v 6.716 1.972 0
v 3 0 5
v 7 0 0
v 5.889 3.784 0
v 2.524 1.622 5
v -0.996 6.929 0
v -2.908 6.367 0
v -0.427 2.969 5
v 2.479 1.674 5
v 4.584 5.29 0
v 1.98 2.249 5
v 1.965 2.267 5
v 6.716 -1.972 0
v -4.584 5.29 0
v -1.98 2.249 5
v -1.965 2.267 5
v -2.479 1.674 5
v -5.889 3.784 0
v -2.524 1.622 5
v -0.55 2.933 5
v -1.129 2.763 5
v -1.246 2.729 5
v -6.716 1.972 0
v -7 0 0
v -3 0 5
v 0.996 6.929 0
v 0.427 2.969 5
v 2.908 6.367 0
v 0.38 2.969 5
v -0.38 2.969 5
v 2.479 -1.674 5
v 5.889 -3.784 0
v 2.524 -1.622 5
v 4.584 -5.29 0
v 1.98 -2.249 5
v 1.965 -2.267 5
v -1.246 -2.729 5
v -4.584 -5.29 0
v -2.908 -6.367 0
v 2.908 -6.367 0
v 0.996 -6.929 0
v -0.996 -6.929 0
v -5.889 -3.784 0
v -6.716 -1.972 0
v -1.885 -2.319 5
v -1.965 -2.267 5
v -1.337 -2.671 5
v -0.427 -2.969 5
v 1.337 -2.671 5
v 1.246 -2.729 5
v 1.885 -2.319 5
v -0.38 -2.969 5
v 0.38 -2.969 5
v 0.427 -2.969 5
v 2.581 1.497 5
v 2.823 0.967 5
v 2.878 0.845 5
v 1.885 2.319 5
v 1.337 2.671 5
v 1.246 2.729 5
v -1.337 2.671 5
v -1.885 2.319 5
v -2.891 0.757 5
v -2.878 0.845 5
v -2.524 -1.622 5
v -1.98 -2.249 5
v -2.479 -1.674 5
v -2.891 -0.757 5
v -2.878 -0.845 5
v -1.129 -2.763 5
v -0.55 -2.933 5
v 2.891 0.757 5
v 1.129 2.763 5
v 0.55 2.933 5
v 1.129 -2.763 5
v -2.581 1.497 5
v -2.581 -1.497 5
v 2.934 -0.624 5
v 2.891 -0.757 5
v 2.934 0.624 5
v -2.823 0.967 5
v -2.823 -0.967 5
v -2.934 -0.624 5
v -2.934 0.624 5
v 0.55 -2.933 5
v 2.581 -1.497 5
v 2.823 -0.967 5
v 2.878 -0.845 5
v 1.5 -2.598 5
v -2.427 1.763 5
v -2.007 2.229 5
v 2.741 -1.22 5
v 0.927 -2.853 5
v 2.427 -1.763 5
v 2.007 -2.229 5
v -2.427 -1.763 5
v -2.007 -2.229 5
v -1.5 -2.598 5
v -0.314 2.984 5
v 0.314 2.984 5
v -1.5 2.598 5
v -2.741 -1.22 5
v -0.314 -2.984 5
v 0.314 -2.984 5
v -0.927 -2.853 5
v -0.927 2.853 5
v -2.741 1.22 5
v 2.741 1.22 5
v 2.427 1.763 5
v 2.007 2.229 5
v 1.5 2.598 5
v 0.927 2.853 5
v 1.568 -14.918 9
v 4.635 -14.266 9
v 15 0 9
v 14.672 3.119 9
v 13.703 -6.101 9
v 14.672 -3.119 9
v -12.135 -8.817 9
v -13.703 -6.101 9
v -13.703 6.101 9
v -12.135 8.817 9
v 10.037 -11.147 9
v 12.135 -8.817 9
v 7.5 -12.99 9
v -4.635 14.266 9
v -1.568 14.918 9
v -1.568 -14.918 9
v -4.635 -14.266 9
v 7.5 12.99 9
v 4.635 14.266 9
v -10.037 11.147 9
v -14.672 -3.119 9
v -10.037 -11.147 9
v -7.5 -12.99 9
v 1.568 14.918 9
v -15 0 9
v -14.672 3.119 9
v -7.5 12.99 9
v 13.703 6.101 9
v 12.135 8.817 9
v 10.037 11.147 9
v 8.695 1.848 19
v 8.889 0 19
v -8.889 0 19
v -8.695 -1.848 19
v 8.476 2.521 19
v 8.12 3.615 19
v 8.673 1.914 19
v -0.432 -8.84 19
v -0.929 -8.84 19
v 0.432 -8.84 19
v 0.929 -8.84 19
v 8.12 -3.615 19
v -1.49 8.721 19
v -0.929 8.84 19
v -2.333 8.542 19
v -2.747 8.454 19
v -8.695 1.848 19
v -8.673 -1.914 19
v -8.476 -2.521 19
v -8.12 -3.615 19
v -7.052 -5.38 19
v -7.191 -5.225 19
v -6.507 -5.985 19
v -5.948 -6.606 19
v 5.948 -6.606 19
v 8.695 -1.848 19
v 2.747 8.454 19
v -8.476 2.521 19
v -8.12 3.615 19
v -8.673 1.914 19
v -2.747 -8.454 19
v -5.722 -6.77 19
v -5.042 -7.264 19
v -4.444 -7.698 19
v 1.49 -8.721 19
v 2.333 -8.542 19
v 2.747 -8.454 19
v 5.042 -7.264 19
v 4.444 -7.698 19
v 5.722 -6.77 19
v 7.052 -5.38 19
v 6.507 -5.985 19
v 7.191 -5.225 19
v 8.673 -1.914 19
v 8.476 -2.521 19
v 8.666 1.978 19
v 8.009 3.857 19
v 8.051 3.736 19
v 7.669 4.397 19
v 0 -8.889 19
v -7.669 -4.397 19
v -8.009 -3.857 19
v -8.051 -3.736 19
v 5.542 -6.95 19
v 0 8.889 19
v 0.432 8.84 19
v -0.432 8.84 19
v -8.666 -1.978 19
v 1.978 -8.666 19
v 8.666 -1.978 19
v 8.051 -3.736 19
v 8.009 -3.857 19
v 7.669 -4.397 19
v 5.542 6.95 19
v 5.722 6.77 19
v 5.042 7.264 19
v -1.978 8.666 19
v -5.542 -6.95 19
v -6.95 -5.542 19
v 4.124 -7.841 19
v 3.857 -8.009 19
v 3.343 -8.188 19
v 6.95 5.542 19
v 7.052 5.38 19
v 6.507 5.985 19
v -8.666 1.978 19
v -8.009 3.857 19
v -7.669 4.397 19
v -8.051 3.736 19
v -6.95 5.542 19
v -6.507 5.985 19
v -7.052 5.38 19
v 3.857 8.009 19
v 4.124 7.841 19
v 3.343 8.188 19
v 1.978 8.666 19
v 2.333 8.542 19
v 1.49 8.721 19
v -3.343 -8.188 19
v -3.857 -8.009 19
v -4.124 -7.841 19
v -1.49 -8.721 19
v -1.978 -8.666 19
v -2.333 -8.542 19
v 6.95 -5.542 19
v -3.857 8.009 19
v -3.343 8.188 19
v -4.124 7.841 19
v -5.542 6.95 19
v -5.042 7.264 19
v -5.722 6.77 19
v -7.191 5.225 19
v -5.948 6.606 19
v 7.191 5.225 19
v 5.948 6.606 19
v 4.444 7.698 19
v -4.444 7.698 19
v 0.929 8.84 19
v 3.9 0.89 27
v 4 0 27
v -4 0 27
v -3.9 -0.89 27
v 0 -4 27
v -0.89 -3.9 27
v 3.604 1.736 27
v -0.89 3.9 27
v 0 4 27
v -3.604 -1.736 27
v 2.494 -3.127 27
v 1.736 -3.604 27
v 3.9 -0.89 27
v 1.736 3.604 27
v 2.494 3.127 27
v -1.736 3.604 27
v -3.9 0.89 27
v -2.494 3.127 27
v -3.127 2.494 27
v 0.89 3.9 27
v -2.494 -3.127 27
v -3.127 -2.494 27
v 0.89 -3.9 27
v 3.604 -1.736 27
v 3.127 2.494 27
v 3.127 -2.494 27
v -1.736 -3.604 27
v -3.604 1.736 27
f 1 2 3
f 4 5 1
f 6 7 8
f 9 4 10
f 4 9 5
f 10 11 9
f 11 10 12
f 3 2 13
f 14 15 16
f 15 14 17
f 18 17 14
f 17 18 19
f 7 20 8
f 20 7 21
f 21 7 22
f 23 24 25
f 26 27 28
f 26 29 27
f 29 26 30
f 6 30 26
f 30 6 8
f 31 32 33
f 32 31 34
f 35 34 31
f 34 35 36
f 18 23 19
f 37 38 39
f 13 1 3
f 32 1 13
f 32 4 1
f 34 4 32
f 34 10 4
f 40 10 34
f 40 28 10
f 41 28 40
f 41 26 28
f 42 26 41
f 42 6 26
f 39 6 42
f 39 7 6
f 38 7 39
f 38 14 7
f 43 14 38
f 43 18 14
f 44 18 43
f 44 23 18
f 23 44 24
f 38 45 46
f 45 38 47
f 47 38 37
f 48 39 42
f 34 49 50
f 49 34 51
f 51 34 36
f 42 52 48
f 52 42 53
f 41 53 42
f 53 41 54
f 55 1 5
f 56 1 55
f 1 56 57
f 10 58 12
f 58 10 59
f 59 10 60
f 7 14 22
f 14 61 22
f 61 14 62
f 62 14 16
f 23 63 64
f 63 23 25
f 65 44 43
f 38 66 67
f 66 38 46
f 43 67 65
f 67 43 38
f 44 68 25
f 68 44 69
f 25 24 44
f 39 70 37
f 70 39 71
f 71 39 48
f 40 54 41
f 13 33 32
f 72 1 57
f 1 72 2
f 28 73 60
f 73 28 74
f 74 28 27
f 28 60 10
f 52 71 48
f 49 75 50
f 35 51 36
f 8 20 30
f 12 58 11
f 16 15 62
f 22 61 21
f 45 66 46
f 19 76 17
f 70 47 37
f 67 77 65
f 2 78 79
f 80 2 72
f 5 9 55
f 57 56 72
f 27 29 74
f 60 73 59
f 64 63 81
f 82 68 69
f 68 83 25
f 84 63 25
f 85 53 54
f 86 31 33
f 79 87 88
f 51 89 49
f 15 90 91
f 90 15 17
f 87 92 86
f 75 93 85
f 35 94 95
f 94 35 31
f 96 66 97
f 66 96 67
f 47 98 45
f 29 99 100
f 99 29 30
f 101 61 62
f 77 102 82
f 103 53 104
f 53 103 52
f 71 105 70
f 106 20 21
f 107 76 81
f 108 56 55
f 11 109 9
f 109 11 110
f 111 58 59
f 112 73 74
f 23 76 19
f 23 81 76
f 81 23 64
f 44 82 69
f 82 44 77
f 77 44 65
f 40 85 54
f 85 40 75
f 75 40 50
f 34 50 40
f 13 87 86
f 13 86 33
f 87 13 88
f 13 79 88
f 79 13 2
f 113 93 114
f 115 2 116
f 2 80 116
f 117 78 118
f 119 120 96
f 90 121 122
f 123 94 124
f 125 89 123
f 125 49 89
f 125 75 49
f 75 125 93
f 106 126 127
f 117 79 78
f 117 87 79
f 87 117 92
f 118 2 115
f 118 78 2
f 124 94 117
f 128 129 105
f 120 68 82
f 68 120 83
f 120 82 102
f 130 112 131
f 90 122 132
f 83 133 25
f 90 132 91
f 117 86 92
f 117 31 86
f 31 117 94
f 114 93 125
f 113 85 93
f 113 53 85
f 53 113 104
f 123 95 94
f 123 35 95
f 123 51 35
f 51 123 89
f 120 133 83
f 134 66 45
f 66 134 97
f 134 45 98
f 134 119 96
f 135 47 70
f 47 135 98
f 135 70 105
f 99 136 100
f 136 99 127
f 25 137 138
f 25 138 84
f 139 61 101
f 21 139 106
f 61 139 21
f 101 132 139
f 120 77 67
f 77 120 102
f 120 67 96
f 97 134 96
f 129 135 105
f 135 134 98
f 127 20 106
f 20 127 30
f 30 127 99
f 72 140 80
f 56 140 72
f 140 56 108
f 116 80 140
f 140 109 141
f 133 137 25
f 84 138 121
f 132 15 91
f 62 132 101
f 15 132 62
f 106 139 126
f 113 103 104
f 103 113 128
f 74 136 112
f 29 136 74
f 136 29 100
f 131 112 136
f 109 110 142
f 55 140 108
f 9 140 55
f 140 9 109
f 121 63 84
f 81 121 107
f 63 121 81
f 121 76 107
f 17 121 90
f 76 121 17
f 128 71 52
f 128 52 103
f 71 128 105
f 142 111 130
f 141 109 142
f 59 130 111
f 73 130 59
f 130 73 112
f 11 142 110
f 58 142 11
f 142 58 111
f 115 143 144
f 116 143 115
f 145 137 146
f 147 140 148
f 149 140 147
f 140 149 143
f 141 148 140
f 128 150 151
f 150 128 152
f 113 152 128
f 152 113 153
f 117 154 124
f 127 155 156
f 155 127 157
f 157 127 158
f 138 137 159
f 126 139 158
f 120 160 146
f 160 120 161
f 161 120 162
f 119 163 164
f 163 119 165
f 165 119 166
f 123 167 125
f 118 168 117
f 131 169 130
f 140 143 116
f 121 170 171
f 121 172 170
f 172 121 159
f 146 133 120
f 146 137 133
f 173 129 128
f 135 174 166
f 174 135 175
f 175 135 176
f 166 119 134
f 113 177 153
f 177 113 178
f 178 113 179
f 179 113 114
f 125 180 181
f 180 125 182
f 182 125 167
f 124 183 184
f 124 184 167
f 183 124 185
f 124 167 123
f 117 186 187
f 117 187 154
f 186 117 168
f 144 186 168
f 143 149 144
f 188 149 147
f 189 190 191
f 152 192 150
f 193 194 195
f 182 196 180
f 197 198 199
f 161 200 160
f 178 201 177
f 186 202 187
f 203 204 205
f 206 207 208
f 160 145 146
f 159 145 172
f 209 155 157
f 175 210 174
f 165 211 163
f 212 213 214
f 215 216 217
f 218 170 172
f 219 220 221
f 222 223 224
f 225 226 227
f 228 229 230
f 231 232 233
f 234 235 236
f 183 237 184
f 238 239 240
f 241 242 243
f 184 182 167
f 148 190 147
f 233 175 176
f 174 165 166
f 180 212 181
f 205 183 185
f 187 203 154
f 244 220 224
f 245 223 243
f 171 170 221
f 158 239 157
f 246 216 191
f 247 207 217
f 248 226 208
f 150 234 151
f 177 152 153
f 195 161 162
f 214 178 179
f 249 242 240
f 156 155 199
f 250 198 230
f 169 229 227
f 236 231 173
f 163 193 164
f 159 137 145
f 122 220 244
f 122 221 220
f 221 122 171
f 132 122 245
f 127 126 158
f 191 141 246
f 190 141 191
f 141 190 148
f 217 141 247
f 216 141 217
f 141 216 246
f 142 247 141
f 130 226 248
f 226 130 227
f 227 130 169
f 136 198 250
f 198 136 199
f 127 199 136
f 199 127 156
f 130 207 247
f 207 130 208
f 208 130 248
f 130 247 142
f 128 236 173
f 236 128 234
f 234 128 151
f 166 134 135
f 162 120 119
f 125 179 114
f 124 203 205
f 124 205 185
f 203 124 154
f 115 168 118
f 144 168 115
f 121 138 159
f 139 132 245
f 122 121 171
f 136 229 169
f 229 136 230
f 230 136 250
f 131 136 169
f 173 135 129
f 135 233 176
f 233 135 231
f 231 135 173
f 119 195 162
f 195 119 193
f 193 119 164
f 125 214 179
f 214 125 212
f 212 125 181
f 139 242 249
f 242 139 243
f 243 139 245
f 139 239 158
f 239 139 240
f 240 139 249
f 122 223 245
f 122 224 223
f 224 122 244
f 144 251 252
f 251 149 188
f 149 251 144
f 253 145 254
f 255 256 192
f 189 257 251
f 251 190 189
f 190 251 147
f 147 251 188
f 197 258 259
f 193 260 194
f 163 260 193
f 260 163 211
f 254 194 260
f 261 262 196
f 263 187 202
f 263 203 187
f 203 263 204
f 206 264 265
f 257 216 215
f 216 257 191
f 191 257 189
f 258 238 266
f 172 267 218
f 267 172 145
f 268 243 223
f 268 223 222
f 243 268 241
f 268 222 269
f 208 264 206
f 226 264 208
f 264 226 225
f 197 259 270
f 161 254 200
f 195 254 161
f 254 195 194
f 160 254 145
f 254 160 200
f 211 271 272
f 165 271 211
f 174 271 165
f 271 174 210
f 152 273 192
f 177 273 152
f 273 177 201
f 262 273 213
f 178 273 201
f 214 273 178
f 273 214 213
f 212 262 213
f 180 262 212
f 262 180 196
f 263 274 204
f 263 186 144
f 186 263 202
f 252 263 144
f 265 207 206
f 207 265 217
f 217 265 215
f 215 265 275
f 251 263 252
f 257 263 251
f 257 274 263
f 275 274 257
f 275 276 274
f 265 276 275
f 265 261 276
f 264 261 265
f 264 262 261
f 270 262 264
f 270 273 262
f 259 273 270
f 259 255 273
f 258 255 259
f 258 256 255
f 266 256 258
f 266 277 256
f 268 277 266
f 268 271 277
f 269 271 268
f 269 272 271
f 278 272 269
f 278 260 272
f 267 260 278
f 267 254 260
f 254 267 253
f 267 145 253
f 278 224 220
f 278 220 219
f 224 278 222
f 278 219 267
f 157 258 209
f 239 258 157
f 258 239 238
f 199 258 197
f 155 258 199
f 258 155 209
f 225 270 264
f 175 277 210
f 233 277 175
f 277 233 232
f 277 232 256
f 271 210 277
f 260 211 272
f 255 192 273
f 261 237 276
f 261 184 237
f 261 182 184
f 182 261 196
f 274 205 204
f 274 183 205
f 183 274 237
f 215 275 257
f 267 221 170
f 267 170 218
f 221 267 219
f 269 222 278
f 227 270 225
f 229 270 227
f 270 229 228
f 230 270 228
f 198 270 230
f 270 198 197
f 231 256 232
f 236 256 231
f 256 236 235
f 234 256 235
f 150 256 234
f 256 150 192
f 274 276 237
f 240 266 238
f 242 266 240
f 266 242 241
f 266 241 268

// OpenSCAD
module lamp(r_top, r_lamp, r_middle, r_base, h_top, h_lamp, h_base_top, h_base_bottom) {
    
    // Poprawiona formuła r_upper_lamp
    r_upper_lamp = r_top+(((r_lamp - r_top)*h_top) / (h_lamp + h_top));
    
    // Podstawa
    cylinder(h_base_bottom, r1=r_base, r2=r_middle);

    // Górna część podstawy
    translate([0,0,h_base_bottom])
    cylinder(h_base_top, r1=r_middle, r2=r_lamp);

    // Główna część lampy
    translate([0,0,h_base_bottom + h_base_top])
    cylinder(h_lamp, r1=r_lamp, r2=r_upper_lamp);

    // Górna część lampy
    translate([0,0,h_base_bottom + h_base_top + h_lamp])
    cylinder(h_top, r1=r_upper_lamp, r2=r_top);
}

lamp(
    r_top = 4,
    r_lamp = 15,
    r_middle = 3,
    r_base = 7,
    h_top = 8,
    h_lamp = 10,
    h_base_top = 4,
    h_base_bottom = 5
);
